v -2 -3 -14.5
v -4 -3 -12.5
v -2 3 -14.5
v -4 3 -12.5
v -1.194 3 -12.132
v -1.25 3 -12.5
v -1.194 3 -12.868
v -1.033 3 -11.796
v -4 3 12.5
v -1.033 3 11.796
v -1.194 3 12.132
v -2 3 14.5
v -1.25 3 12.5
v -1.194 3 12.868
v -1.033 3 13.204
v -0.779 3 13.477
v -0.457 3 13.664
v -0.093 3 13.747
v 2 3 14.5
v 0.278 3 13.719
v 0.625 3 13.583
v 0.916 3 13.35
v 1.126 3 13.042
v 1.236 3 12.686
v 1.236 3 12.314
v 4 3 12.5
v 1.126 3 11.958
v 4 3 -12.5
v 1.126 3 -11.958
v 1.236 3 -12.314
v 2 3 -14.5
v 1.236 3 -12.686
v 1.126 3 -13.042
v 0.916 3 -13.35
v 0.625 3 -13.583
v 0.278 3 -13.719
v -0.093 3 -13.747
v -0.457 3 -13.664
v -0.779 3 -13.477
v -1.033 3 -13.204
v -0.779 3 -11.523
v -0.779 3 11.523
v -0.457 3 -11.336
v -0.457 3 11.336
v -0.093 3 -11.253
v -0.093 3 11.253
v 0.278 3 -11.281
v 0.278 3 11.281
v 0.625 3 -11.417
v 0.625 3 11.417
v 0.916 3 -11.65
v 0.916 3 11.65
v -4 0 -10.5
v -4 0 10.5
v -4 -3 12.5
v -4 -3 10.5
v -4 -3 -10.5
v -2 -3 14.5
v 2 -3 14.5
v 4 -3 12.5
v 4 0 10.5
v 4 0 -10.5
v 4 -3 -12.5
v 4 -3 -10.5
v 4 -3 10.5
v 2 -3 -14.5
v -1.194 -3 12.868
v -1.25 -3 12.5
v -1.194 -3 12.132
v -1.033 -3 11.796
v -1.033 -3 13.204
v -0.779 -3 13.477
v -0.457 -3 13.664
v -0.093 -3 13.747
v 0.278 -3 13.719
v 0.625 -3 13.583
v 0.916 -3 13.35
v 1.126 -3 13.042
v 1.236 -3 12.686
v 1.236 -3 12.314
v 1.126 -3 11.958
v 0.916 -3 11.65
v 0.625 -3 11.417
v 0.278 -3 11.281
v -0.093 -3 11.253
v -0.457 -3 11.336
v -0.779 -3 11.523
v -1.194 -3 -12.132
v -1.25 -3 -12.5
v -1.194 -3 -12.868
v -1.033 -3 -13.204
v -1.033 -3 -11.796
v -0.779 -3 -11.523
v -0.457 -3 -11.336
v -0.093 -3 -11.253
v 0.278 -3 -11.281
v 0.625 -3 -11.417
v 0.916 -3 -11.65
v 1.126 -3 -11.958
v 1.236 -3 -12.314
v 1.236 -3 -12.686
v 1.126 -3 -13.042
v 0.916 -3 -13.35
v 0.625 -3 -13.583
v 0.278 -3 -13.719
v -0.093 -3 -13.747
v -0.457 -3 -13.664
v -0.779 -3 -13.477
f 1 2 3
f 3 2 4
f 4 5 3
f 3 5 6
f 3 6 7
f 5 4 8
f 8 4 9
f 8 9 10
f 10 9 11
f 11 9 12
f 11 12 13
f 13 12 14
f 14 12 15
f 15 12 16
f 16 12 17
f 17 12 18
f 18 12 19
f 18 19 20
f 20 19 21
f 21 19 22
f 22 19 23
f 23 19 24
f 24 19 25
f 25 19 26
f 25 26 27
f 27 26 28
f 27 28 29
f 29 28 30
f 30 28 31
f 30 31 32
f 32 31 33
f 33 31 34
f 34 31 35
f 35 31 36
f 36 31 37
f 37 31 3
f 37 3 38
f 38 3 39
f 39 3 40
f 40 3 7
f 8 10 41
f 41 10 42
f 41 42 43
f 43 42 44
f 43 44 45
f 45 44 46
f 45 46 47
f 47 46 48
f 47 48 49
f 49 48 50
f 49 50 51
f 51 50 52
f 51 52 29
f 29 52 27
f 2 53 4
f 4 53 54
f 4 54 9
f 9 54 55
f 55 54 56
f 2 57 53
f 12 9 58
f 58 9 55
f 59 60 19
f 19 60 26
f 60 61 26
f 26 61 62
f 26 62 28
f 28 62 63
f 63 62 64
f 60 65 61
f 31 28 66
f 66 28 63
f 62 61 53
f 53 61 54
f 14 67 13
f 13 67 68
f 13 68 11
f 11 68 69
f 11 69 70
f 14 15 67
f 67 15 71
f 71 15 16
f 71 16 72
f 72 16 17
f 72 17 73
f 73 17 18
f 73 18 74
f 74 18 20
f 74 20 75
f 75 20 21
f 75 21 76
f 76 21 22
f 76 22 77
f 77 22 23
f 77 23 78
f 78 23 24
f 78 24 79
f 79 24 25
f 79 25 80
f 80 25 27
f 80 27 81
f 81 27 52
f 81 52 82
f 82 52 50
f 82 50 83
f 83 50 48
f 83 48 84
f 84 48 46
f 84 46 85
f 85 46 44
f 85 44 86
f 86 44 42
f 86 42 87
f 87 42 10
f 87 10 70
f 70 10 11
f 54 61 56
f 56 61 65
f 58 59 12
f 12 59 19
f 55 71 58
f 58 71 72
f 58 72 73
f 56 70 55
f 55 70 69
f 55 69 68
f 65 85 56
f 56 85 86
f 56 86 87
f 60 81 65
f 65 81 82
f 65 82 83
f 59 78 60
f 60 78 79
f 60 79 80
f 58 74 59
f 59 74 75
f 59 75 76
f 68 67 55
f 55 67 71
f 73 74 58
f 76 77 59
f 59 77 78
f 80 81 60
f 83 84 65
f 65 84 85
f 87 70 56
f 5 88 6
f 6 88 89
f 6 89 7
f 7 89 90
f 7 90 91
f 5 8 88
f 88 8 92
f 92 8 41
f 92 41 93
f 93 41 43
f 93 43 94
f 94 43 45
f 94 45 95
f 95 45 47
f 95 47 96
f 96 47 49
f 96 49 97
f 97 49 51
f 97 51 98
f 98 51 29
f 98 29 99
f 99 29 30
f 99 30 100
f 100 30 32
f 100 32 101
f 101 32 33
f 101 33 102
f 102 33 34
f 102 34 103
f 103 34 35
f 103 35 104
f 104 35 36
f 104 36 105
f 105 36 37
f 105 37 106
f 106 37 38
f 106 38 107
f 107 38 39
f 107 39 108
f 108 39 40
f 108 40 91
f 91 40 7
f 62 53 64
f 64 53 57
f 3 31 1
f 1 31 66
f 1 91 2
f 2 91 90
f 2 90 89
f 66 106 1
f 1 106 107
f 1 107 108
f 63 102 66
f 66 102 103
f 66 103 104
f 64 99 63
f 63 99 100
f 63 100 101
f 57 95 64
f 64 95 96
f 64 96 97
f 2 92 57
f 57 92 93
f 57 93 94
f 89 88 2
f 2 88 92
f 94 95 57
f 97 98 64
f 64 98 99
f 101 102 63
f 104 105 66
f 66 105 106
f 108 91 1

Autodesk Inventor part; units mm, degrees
ref_plane "YZ Plane" through (0, 0, 0) normal (1, 0, 0) x (0, 1, 0)
ref_plane "XZ Plane" through (0, 0, 0) normal (0, 1, 0) x (-1, 0, 0)
ref_plane "XY Plane" through (0, 0, 0) normal (0, 0, 1) x (1, 0, 0)
sketch "스케치1" plane through (0, 0, 0) normal (0, 1, 0) x (-1, 0, 0)
  line L0 (4, 14.5) -> (-4, 14.5)
  line L1 (-4, 14.5) -> (-4, -14.5)
  line L2 (-4, -14.5) -> (4, -14.5)
  line L3 (4, -14.5) -> (4, 14.5)
  line L4 (4, 14.5) -> (-4, -14.5) construction
  line L5 (-4, 14.5) -> (4, -14.5) construction
  line L6 (4, 10.5) -> (-4, 10.5)
  line L7 (0, 0) -> (3.2228, 0)
  line L8 (4, -10.5) -> (-4, -10.5)
  circle A0 centre (0, 12.5) radius 1.25
  circle A1 centre (0, -12.5) radius 1.25
  point P0 (4, -10.5)
  point P1 (-4, -10.5)
  dimension "d0" = 8
  dimension "d1" = 29
  dimension "d2" = 4
  dimension "d3" = 2.5
  dimension "d4" = 2
extrude "돌출1" add sketch "스케치1" against normal blind 3 contours L3 L6 L1 L0 | L3 L2 L1 L8
extrude "돌출2" add sketch "스케치1" along normal blind 3
chamfer "모따기1" distance 2 angle 45 4 edges at (4, 0, -14.5) (4, 0, 14.5) (-4, 0, 14.5) (-4, 0, -14.5)
properties part number "스텝모터 드라이버 홀더"
